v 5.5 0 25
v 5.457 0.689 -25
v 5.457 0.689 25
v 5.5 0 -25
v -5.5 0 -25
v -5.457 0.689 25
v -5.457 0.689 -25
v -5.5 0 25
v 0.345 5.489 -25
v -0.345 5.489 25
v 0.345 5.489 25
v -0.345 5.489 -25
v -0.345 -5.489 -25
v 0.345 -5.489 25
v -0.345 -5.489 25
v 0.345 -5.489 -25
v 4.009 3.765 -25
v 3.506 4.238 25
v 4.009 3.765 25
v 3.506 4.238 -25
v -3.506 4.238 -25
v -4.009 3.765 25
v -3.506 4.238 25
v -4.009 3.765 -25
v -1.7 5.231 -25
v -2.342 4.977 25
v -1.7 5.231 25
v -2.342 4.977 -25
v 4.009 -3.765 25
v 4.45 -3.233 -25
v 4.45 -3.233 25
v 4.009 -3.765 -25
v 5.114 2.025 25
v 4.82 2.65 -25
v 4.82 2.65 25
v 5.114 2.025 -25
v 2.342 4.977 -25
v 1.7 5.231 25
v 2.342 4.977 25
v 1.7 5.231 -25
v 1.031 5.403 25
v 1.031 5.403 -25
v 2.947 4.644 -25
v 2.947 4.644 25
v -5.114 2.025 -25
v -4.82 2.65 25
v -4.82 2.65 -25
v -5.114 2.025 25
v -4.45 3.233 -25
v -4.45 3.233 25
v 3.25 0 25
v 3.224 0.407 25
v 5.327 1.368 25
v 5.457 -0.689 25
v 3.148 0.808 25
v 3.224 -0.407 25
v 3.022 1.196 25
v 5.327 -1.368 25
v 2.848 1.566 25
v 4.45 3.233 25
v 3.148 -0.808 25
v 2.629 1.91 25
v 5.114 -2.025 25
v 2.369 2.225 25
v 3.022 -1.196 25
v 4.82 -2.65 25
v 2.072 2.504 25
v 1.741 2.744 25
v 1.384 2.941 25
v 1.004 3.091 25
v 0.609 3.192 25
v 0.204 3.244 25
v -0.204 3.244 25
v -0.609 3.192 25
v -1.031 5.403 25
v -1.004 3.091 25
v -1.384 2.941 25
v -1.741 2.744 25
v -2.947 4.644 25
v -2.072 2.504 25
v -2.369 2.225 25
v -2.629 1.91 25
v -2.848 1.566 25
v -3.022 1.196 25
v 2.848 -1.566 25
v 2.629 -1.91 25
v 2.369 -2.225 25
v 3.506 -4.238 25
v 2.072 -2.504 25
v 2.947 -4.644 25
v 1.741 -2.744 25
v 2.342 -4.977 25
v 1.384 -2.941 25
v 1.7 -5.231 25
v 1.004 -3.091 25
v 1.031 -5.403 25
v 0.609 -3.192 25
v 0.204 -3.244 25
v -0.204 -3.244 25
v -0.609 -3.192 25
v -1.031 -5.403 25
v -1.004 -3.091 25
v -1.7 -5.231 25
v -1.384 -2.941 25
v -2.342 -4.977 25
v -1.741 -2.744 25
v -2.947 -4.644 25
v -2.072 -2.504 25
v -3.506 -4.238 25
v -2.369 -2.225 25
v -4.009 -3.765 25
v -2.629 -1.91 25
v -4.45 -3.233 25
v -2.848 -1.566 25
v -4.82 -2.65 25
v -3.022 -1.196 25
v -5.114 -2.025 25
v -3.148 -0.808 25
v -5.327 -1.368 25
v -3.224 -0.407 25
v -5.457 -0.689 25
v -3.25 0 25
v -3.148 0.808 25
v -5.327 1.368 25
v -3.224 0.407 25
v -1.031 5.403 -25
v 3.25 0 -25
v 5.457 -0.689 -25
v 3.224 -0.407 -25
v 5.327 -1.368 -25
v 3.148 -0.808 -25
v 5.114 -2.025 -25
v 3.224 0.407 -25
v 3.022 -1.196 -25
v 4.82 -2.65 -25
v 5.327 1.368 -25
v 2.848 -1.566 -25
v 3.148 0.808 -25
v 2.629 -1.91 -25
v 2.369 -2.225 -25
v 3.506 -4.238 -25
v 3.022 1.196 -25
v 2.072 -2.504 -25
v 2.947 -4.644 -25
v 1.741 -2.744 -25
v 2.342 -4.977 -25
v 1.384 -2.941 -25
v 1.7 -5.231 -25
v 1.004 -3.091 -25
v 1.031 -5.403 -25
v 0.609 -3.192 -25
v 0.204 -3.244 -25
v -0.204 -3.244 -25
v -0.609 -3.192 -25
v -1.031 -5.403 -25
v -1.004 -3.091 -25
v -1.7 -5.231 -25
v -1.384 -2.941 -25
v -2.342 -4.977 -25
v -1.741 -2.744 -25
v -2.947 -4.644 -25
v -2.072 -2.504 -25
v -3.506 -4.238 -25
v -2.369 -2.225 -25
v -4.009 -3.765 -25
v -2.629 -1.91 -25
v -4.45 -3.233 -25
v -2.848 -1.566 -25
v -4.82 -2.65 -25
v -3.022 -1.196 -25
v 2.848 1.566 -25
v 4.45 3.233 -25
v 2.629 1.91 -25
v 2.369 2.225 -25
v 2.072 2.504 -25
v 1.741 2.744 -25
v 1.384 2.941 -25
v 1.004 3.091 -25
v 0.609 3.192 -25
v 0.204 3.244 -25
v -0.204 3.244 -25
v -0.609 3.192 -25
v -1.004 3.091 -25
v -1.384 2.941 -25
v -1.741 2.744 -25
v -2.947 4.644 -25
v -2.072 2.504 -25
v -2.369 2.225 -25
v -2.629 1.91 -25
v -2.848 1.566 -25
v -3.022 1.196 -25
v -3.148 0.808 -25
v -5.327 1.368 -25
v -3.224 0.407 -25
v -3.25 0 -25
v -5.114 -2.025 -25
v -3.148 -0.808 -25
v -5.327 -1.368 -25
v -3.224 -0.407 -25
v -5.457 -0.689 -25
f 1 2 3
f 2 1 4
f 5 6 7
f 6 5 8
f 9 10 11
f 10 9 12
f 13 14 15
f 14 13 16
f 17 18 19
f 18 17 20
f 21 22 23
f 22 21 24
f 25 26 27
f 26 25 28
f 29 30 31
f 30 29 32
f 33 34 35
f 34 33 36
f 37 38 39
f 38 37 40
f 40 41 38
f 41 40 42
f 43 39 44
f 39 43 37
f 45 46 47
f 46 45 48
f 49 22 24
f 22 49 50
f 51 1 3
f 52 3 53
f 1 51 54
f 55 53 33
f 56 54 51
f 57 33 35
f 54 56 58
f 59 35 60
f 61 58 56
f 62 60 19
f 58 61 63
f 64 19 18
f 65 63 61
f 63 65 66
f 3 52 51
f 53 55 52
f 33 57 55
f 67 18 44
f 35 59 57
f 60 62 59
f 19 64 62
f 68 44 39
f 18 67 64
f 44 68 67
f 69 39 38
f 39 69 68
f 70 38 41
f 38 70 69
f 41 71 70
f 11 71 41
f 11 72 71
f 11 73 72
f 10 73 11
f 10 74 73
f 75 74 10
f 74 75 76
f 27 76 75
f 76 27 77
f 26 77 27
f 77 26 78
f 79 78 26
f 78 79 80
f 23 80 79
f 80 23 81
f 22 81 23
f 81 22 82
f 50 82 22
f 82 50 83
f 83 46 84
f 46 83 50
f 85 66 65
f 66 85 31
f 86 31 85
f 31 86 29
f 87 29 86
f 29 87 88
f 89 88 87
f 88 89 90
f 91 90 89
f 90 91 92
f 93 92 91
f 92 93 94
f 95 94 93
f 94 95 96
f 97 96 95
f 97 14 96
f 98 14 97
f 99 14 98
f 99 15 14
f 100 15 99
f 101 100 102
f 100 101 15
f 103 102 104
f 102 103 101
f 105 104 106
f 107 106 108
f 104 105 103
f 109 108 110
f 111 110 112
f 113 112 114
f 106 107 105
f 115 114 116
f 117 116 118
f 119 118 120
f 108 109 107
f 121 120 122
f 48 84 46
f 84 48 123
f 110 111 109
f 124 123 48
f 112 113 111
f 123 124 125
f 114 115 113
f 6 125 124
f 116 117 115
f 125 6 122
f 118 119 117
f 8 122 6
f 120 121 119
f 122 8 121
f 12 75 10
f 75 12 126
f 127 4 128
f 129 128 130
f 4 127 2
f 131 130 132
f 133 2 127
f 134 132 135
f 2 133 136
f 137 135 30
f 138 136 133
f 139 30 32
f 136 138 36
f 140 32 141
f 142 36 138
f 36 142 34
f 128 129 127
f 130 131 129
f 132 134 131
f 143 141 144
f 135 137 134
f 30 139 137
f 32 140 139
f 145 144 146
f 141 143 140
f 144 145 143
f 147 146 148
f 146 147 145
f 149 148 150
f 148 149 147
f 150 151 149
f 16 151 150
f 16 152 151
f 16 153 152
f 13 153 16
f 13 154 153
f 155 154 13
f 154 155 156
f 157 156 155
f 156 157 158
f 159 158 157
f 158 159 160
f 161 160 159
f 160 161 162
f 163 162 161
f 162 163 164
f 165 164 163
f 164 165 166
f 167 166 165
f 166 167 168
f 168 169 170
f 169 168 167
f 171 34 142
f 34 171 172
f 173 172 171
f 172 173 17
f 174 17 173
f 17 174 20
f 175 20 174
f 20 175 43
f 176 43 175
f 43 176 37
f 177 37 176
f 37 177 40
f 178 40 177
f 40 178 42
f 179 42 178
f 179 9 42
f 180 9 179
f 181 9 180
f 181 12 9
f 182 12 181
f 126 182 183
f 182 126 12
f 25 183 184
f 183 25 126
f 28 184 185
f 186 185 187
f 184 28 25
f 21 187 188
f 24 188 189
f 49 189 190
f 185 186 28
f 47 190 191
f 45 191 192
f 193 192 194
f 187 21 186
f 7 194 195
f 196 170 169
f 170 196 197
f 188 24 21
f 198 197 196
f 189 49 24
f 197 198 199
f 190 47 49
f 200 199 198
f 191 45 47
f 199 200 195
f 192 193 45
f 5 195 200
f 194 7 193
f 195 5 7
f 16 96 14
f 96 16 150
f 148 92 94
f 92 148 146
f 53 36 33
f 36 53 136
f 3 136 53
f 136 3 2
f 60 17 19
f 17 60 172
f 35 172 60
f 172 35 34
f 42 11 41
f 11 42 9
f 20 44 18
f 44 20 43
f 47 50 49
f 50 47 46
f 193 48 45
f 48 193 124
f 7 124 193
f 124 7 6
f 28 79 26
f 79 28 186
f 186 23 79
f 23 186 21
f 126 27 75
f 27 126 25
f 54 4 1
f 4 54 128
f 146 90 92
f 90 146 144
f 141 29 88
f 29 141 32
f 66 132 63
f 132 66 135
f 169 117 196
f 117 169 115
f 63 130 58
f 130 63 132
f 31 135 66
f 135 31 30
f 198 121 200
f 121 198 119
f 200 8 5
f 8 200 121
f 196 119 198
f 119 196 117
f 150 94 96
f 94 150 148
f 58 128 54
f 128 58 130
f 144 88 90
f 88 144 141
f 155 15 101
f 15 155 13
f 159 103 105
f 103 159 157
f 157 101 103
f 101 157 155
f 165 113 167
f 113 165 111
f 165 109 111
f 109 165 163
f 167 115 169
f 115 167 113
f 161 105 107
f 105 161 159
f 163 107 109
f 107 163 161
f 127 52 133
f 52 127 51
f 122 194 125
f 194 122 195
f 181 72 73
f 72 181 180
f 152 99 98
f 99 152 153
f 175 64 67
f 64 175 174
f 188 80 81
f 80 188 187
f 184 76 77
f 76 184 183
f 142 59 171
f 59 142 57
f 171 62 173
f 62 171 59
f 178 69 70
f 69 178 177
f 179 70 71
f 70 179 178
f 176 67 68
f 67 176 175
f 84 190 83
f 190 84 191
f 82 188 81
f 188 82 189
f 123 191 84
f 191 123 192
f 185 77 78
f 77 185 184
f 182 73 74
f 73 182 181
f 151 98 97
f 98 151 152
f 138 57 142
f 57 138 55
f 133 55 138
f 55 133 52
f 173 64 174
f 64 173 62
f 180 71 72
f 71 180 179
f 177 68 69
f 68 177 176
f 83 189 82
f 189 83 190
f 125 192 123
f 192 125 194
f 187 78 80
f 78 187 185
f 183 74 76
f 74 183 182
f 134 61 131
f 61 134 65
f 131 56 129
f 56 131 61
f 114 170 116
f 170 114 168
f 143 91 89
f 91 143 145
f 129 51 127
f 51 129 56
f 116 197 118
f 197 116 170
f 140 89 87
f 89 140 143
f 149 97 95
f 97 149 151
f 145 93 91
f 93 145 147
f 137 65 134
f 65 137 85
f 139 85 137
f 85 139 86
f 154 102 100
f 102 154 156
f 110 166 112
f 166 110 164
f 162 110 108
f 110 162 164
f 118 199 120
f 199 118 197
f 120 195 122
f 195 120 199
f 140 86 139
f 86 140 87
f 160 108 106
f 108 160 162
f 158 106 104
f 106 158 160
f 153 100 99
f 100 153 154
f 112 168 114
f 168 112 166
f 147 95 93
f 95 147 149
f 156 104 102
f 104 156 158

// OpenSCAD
$fn = 50;


difference() {
	union() {
		translate(v = [0, 0, -25.0000000000]) {
			cylinder(h = 50, r = 5.5000000000);
		}
	}
	union() {
		translate(v = [0, 0, -100.0000000000]) {
			cylinder(h = 200, r = 3.2500000000);
		}
	}
}
